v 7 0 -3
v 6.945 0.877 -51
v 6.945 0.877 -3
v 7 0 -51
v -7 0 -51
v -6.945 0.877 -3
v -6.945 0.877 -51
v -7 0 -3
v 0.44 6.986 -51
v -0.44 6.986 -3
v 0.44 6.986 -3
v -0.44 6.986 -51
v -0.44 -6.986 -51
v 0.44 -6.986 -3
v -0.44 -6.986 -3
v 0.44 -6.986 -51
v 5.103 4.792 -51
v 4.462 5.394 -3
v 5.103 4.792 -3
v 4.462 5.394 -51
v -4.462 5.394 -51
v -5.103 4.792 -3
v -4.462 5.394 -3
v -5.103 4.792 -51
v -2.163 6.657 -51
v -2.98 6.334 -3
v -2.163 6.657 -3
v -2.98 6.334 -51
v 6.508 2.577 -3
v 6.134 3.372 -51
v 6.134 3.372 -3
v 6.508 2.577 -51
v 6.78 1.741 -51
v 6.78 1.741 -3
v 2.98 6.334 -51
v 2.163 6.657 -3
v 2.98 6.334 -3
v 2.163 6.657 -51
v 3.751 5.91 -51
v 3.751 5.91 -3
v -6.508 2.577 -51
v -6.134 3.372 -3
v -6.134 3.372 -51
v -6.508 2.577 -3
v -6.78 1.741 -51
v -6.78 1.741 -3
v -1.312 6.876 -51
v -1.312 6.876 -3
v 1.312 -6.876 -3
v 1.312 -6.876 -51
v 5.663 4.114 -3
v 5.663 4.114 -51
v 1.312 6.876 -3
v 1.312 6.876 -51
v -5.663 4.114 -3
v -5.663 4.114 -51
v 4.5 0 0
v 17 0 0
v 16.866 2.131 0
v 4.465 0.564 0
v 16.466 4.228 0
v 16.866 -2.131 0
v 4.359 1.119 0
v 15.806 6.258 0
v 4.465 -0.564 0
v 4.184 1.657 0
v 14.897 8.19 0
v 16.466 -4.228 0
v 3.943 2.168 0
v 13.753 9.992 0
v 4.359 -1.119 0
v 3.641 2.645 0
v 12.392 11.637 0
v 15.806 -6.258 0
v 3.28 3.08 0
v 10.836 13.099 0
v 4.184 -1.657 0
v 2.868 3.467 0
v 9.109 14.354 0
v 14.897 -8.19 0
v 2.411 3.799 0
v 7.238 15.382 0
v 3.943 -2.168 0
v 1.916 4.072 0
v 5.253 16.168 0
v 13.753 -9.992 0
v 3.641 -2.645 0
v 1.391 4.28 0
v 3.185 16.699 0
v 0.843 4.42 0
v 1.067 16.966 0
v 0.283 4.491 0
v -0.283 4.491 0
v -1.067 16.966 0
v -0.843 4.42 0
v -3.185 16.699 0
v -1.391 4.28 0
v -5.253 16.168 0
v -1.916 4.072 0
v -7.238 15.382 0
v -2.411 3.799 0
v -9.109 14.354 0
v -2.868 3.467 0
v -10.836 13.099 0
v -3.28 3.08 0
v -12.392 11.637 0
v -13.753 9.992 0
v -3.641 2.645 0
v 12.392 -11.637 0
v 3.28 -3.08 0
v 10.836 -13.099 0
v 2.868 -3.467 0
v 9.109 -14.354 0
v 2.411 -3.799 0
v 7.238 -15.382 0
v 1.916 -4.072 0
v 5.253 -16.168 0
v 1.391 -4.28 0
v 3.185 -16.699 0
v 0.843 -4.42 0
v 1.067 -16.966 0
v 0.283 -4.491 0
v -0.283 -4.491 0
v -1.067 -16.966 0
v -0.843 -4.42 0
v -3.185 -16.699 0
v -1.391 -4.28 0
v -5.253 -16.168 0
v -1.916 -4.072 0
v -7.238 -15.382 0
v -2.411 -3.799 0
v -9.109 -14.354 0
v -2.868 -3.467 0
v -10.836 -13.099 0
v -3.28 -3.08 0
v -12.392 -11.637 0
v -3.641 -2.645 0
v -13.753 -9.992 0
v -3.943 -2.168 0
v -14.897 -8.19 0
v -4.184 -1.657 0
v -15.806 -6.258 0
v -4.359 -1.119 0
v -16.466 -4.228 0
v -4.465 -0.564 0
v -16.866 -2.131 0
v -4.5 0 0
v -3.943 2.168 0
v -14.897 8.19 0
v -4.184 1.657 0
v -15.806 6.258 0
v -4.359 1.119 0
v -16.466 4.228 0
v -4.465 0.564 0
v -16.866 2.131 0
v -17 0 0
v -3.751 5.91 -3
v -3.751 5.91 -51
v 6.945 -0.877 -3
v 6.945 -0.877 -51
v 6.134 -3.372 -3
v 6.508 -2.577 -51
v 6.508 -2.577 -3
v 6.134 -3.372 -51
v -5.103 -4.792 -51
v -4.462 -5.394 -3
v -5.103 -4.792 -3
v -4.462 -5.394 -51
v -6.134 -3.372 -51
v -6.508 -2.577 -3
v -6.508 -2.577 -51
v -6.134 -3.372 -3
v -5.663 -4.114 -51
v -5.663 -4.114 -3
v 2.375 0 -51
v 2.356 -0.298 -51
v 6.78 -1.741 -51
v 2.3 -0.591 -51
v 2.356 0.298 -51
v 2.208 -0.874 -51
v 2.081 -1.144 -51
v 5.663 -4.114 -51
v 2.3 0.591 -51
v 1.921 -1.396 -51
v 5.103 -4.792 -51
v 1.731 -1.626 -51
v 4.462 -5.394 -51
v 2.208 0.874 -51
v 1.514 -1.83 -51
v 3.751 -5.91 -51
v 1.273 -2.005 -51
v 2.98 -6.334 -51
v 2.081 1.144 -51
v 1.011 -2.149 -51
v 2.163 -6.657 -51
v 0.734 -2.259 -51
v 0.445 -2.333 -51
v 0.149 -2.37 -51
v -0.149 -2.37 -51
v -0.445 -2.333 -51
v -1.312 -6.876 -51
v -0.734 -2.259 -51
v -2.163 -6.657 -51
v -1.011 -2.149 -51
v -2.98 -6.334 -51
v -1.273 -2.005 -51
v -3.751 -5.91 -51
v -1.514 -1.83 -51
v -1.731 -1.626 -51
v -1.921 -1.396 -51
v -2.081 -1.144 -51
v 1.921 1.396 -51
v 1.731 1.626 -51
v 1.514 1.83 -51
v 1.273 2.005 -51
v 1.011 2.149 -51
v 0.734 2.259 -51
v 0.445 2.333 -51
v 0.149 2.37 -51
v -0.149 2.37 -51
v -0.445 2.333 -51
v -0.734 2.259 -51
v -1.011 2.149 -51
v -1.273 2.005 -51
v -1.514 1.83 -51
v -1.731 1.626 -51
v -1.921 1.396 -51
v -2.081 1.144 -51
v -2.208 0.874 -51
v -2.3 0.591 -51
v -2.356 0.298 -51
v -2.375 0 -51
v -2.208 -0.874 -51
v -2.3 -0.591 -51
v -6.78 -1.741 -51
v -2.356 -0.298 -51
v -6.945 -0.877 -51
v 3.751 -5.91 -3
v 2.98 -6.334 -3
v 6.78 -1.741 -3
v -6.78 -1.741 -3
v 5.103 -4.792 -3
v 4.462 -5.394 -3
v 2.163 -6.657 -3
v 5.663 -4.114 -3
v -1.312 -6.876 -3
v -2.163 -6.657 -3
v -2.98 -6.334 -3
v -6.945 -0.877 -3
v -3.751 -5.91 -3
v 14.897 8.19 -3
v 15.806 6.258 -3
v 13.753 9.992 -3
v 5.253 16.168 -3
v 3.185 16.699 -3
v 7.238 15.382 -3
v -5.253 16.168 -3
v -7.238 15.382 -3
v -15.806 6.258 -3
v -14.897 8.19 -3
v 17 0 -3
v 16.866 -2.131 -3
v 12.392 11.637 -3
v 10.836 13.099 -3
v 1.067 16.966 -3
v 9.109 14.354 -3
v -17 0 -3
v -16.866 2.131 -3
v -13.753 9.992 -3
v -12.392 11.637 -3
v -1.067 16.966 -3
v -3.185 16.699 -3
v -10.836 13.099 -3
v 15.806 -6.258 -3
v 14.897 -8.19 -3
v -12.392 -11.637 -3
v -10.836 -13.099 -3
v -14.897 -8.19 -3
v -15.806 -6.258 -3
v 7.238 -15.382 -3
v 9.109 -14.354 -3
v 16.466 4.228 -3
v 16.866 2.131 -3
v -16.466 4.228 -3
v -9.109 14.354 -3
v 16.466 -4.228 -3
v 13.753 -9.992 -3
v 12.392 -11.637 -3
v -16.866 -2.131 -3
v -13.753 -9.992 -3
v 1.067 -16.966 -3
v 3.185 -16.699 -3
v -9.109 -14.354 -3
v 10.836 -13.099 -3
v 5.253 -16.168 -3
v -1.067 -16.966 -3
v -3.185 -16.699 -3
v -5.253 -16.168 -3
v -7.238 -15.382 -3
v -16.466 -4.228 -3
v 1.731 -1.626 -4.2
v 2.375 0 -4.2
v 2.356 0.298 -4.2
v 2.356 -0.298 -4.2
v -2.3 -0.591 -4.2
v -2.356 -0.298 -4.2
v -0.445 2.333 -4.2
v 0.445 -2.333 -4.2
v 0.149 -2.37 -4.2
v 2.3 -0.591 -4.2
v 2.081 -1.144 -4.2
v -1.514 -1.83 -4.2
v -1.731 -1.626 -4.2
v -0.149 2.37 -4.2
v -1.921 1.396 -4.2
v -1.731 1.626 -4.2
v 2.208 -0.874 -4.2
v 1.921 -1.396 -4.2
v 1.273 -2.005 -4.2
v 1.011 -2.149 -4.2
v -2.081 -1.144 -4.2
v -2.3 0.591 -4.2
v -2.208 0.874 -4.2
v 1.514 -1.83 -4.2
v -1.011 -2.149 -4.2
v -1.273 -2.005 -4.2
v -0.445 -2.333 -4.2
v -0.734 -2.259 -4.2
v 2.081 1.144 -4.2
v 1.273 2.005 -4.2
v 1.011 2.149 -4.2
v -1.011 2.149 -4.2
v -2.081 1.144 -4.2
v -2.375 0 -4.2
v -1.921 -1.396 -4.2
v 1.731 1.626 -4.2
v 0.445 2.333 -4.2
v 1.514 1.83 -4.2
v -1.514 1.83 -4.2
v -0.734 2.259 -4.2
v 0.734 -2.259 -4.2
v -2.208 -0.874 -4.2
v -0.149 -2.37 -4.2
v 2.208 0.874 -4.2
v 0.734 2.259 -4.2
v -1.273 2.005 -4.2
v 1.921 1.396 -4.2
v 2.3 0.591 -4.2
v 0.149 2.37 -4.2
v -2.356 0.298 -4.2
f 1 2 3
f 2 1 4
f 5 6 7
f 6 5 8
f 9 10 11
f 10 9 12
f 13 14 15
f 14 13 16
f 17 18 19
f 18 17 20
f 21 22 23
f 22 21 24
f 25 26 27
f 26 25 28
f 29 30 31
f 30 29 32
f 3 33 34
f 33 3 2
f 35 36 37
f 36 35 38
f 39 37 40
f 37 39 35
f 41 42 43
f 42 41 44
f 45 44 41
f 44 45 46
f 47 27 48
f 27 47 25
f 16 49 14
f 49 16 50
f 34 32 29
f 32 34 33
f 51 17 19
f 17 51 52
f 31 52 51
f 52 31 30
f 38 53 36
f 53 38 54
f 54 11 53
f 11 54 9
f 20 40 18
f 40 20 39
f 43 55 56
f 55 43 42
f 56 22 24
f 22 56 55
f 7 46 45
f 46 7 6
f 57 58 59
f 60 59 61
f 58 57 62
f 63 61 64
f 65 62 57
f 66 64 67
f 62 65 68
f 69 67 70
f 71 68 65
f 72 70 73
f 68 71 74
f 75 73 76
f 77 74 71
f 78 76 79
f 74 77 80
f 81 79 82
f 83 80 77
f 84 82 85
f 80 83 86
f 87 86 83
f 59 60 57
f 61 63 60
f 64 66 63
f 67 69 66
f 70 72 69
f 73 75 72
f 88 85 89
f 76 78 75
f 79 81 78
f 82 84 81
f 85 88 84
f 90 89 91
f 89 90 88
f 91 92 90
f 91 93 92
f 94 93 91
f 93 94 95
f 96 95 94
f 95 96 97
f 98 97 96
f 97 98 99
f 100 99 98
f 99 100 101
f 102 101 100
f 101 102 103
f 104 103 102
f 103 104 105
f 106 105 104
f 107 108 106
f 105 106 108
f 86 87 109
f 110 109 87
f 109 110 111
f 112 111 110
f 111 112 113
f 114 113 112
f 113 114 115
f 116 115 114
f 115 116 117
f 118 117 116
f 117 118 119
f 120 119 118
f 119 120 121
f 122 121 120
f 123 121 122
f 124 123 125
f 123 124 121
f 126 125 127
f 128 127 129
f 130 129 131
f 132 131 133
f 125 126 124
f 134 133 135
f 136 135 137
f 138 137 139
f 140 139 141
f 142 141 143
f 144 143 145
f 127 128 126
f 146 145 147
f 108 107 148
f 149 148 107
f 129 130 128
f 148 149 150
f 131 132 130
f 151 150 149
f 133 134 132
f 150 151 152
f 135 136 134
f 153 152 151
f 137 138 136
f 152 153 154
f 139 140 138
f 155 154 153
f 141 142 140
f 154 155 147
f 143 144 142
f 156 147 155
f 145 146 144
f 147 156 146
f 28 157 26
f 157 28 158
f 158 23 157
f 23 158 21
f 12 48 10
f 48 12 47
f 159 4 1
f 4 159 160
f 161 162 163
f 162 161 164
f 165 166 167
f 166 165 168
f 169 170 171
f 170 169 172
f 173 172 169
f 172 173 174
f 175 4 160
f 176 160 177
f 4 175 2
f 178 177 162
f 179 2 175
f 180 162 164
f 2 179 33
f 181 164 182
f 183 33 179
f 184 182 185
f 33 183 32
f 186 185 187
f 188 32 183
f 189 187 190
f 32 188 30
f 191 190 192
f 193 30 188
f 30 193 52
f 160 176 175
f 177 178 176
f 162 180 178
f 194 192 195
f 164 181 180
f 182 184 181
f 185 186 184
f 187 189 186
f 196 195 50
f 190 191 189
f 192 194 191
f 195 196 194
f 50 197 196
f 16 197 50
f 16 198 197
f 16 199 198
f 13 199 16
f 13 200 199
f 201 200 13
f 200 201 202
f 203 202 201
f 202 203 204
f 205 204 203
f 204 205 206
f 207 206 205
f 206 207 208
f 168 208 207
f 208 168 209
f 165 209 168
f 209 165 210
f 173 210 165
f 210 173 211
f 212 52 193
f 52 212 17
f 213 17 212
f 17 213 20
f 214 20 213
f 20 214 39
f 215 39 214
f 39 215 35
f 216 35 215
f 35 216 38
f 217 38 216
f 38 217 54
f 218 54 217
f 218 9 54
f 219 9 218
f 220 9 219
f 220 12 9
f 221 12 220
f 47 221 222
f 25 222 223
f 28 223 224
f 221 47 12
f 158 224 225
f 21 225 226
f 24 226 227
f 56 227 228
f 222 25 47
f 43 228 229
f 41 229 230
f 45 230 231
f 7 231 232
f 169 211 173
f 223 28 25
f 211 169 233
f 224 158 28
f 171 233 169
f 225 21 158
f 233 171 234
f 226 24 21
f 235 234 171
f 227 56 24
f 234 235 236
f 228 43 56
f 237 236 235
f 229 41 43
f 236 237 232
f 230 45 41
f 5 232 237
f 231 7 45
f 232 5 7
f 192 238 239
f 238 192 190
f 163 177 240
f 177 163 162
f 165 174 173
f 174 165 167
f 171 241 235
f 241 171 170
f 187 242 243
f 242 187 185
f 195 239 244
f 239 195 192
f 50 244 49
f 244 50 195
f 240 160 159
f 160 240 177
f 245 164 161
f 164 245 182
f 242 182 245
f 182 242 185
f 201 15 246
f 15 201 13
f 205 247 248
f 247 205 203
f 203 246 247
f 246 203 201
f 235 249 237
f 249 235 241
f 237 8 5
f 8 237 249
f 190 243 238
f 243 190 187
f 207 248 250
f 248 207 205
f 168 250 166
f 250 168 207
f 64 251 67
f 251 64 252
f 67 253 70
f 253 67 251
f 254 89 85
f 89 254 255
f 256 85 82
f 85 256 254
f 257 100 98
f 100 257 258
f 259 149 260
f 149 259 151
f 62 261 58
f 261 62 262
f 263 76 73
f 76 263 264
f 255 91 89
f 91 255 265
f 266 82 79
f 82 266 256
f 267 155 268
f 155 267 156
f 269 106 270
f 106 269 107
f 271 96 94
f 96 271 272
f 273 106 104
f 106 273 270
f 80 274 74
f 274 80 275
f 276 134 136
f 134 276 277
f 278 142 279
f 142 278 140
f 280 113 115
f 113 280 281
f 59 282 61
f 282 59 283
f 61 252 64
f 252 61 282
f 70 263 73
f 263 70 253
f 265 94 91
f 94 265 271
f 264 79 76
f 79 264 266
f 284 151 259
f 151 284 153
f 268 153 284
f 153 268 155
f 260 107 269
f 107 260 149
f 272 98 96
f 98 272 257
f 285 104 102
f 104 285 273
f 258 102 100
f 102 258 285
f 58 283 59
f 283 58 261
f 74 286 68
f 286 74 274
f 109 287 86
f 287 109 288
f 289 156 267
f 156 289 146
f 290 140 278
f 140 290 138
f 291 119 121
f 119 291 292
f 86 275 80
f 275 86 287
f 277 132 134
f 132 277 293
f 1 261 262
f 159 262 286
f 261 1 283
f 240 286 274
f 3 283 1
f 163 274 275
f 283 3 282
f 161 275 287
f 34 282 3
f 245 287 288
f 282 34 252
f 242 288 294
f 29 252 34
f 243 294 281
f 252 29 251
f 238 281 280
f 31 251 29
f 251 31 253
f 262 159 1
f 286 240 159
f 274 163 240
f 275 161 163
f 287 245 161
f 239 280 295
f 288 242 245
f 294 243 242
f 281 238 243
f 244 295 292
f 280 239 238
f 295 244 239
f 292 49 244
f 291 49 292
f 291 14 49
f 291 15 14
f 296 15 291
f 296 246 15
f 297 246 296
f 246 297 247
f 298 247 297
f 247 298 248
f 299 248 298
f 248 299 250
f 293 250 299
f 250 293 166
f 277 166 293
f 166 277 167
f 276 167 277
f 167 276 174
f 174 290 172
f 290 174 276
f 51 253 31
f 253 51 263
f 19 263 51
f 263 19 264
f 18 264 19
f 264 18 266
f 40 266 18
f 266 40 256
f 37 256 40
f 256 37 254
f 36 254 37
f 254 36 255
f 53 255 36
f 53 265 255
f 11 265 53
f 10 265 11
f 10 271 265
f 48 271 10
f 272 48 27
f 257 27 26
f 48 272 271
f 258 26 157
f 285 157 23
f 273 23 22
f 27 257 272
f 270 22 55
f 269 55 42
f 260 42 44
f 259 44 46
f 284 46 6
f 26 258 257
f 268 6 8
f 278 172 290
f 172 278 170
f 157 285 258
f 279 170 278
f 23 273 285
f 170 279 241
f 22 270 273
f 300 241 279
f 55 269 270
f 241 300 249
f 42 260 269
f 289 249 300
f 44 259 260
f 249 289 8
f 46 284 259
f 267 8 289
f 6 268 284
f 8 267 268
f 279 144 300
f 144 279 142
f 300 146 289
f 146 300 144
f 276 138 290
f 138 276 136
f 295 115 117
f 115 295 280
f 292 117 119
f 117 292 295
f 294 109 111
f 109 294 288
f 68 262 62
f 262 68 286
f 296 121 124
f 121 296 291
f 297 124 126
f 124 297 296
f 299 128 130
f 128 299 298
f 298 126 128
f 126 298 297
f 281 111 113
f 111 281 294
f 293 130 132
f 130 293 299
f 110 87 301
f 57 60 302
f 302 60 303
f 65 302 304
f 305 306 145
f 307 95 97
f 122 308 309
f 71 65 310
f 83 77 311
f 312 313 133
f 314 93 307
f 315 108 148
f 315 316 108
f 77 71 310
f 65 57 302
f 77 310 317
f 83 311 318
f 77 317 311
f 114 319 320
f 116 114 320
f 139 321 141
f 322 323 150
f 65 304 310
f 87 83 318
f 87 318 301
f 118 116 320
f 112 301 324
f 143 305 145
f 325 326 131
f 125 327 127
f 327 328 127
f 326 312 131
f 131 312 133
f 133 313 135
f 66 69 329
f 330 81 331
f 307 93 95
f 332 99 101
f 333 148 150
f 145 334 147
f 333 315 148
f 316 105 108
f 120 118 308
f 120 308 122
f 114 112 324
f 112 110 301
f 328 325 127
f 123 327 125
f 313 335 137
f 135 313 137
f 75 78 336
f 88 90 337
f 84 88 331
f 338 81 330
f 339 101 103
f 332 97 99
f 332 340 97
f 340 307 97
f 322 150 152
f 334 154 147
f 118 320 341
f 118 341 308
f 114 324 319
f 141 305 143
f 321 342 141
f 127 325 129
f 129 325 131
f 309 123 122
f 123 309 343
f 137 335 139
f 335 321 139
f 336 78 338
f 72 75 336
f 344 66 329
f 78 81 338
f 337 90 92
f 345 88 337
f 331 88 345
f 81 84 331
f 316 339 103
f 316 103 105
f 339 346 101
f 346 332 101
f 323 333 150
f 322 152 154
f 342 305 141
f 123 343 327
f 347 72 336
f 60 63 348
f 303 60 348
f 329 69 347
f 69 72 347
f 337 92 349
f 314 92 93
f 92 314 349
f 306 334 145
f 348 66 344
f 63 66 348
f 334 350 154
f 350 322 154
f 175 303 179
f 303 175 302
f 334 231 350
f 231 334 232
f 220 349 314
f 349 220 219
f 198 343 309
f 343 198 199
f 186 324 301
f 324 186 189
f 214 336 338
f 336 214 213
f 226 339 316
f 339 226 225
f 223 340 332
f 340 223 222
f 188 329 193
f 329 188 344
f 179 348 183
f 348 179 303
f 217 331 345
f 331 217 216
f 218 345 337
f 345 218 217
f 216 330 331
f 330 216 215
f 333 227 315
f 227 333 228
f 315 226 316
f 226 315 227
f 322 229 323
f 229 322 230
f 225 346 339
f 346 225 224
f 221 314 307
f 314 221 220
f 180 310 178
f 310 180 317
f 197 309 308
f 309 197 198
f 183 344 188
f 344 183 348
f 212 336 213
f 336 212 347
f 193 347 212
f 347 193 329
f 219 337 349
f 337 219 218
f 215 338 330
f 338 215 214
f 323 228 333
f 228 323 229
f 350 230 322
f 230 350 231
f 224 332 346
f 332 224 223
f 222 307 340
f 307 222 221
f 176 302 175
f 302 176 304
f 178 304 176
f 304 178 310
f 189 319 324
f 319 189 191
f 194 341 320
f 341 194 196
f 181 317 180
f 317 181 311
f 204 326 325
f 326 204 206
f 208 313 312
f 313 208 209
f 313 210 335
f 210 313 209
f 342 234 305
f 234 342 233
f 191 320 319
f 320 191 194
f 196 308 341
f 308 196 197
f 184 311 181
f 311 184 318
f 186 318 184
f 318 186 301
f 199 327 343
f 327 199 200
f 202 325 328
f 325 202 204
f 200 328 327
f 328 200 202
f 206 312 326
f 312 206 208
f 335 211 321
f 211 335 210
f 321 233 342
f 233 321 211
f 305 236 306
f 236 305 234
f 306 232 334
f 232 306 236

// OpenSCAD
$fn = 50;


difference() {
	union() {
		translate(v = [0, 0, -51.0000000000]) {
			cylinder(h = 51, r = 7.0000000000);
		}
		translate(v = [0, 0, -3.0000000000]) {
			cylinder(h = 3, r = 17.0000000000);
		}
	}
	union() {
		translate(v = [0, 0, 0]) {
			rotate(a = [0, 0, 0]) {
				difference() {
					union() {
						#translate(v = [0, 0, -51.0000000000]) {
							cylinder(h = 51, r = 2.2500000000);
						}
						#translate(v = [0, 0, -4.2000000000]) {
							cylinder(h = 4.2000000000, r1 = 2.3750000000, r2 = 4.5000000000);
						}
						#translate(v = [0, 0, -51.0000000000]) {
							cylinder(h = 51, r = 2.3750000000);
						}
						#translate(v = [0, 0, -51.0000000000]) {
							cylinder(h = 51, r = 2.2500000000);
						}
					}
					union();
				}
			}
		}
	}
}
